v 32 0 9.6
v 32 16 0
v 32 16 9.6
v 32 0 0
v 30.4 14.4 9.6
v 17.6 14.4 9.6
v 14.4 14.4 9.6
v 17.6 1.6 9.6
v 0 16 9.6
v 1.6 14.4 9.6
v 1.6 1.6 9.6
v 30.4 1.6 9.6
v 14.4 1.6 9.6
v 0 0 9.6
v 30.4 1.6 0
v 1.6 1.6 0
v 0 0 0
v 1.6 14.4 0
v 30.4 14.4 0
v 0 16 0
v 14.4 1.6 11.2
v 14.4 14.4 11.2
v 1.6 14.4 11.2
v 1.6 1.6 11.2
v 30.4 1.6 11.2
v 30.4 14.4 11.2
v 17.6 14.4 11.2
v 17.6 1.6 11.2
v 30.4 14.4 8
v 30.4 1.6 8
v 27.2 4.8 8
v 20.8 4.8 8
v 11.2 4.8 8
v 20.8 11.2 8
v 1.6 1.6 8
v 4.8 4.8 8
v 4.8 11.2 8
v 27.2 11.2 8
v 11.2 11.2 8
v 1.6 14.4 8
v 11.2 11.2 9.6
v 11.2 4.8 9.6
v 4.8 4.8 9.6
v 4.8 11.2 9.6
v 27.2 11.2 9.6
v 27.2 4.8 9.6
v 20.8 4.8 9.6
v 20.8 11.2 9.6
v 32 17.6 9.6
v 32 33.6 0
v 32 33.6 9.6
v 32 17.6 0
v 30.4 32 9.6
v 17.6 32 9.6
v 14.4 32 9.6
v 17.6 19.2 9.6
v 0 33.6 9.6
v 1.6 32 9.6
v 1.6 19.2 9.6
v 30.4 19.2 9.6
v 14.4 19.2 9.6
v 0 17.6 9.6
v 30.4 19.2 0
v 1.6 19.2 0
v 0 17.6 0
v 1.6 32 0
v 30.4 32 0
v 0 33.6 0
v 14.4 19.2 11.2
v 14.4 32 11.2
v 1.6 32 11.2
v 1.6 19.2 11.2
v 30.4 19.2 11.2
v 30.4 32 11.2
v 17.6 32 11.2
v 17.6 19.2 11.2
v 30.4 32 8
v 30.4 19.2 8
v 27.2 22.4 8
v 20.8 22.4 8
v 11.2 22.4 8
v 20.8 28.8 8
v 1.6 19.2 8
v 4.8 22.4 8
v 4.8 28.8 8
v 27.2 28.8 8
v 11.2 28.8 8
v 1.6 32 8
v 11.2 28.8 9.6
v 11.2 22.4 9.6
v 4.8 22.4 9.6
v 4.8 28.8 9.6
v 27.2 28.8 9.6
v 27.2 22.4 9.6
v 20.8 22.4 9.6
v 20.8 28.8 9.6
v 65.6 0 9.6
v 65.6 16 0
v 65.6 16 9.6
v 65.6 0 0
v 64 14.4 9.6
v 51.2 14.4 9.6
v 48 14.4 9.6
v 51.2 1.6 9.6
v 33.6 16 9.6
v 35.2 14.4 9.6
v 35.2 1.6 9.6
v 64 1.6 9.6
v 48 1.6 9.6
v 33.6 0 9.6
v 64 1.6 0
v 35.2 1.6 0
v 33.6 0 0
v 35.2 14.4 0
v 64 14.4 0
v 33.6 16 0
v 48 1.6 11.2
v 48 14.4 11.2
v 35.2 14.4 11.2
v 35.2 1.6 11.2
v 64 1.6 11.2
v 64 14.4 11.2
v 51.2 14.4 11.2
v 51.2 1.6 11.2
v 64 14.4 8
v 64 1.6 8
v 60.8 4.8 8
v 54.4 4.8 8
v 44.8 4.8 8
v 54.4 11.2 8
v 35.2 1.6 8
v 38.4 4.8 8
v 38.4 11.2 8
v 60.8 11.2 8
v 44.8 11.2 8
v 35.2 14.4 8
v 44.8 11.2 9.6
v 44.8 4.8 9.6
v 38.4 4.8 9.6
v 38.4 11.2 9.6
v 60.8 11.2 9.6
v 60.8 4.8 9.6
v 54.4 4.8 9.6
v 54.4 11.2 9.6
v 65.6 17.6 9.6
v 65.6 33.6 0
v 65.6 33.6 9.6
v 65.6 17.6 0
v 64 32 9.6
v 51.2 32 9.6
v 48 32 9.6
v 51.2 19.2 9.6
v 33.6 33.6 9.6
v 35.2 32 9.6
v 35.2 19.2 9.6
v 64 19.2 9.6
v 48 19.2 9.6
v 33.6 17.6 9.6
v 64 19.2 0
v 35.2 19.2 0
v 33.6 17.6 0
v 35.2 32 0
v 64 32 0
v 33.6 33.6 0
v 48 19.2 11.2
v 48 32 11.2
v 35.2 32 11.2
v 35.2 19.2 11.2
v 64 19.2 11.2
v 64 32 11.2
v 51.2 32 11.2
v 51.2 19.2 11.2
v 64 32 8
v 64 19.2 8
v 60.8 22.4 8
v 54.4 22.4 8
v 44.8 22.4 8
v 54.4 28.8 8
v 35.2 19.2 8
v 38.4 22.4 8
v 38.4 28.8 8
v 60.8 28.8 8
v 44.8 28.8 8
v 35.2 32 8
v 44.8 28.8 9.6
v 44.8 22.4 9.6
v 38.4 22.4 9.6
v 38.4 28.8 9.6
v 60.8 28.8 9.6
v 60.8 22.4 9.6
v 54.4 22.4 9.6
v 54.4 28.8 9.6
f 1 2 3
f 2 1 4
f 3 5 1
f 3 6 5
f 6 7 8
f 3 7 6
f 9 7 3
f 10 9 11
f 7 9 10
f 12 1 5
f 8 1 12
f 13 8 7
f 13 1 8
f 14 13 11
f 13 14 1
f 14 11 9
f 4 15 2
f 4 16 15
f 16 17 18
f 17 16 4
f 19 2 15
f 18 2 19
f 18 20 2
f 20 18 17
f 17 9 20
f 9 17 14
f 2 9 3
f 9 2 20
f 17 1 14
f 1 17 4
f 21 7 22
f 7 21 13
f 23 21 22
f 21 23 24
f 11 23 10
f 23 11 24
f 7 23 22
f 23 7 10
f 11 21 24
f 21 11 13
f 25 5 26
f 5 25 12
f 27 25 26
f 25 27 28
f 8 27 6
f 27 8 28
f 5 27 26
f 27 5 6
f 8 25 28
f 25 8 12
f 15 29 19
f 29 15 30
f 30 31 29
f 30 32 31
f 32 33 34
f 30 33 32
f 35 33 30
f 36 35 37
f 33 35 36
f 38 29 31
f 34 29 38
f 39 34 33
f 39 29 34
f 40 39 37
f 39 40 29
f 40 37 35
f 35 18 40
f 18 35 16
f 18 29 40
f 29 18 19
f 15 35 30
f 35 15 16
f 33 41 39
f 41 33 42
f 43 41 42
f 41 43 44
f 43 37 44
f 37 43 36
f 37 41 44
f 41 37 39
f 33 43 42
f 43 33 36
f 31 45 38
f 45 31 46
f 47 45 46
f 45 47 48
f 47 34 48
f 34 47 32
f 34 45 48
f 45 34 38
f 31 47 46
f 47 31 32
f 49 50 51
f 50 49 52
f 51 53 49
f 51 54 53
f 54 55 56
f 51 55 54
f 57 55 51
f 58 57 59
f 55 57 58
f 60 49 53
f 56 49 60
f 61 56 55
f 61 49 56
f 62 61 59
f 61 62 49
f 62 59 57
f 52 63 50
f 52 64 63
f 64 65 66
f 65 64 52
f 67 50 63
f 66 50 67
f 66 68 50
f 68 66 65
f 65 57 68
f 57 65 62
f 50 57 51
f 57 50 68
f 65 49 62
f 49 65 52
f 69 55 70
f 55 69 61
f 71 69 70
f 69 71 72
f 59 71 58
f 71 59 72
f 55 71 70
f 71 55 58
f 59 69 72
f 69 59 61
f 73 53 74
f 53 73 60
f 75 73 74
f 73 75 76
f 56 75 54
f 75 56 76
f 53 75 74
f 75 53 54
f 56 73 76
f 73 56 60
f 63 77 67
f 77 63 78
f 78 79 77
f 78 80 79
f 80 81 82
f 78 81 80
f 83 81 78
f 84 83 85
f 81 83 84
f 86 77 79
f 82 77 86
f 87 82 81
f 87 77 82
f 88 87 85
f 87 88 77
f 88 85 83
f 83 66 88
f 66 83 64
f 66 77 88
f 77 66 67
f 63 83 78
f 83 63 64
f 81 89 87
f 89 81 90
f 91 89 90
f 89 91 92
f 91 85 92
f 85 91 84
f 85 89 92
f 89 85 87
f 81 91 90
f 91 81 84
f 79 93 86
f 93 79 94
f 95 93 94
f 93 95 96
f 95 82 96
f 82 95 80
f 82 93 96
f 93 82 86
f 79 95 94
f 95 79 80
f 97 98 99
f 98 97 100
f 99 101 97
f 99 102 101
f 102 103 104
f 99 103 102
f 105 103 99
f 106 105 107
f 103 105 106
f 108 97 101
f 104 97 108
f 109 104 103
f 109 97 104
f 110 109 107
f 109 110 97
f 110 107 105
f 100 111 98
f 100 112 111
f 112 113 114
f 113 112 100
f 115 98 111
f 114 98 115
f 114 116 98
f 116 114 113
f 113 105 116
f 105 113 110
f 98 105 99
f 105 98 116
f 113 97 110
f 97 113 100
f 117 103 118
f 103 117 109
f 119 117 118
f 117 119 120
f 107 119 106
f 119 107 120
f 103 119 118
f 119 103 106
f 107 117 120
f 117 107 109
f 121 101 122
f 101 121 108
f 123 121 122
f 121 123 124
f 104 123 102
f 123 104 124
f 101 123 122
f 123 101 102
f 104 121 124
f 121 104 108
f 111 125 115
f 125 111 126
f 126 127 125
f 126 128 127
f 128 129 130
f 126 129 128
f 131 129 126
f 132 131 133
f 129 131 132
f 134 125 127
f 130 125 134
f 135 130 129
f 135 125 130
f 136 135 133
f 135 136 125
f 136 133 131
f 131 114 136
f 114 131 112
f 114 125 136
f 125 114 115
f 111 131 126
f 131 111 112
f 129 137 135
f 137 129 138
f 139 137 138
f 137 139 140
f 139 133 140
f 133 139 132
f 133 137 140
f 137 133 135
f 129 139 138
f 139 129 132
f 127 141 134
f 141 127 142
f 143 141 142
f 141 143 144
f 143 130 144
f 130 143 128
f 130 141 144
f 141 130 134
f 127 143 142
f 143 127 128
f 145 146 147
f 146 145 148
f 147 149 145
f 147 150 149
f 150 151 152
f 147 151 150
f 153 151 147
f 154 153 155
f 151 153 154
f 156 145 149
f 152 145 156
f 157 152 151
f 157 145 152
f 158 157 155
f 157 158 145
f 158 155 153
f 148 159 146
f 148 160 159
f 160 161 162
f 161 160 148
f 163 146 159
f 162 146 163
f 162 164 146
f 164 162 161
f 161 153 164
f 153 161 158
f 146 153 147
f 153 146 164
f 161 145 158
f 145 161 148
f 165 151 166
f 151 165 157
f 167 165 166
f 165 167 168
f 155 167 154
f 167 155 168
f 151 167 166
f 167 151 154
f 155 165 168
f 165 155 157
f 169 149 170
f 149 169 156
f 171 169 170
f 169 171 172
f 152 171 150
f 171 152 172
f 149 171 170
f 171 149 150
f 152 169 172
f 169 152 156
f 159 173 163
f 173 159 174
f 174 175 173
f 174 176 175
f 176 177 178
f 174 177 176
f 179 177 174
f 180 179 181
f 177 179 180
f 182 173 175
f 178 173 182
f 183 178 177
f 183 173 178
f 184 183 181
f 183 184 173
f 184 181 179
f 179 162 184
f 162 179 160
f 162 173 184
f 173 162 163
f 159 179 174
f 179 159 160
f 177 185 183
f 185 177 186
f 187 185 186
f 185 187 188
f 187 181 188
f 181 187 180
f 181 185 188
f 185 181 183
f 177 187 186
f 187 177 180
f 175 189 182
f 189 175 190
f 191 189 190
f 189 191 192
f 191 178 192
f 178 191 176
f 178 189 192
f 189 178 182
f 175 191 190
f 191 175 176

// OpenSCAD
// Stackable brick inspired by original LEGO
// By Hans Christian Saustrup <hc@saustrup.net>
model_version = "v0.0.1";

// Duplication factor
fx = 2;

// Duplication factor
fy = 2;

// "LEGO unit" size in mm
lu = 1.6; 

x = 20 * lu; // Width
y = 10 * lu; // Depth
z = 6 * lu; // Height
t = 1 * lu; // Thickness
th = 1 * lu; // Tip height

module oldbrick() {
    difference() {
        union() {
            // Brick itself
            cube([x,y,z]);

            // Top 1
            translate([t,t,z])
                cube([(x/2)-(t*2),y-(2*t),th]);

            // Top 2
            translate([t+(x/2),t,z])
                cube([(x/2)-(2*t),y-(2*t),th]);
        }
        union() {
            // Hollow out brick
            translate([t,t,0])
                cube([x-(2*t),y-(2*t),z-t]);

            // Hollow under top1
            translate([t*3,t*3,z-t])
                cube([(x/2)-(t*6),y-(t*6),th]);

            // Hollow under top2
            translate([(x/2)+(t*3),t*3,z-t])
                cube([(x/2)-(t*6),y-(t*6),th]);
        }
    }
}

for (xl = [0:1:fx-1]) {
    translate([xl*(x+t),0,0]) {
        for (yl = [0:1:fy-1]) {
            translate([0,yl*(y+t),0]) {
                oldbrick();
            }
        }
    }
}
